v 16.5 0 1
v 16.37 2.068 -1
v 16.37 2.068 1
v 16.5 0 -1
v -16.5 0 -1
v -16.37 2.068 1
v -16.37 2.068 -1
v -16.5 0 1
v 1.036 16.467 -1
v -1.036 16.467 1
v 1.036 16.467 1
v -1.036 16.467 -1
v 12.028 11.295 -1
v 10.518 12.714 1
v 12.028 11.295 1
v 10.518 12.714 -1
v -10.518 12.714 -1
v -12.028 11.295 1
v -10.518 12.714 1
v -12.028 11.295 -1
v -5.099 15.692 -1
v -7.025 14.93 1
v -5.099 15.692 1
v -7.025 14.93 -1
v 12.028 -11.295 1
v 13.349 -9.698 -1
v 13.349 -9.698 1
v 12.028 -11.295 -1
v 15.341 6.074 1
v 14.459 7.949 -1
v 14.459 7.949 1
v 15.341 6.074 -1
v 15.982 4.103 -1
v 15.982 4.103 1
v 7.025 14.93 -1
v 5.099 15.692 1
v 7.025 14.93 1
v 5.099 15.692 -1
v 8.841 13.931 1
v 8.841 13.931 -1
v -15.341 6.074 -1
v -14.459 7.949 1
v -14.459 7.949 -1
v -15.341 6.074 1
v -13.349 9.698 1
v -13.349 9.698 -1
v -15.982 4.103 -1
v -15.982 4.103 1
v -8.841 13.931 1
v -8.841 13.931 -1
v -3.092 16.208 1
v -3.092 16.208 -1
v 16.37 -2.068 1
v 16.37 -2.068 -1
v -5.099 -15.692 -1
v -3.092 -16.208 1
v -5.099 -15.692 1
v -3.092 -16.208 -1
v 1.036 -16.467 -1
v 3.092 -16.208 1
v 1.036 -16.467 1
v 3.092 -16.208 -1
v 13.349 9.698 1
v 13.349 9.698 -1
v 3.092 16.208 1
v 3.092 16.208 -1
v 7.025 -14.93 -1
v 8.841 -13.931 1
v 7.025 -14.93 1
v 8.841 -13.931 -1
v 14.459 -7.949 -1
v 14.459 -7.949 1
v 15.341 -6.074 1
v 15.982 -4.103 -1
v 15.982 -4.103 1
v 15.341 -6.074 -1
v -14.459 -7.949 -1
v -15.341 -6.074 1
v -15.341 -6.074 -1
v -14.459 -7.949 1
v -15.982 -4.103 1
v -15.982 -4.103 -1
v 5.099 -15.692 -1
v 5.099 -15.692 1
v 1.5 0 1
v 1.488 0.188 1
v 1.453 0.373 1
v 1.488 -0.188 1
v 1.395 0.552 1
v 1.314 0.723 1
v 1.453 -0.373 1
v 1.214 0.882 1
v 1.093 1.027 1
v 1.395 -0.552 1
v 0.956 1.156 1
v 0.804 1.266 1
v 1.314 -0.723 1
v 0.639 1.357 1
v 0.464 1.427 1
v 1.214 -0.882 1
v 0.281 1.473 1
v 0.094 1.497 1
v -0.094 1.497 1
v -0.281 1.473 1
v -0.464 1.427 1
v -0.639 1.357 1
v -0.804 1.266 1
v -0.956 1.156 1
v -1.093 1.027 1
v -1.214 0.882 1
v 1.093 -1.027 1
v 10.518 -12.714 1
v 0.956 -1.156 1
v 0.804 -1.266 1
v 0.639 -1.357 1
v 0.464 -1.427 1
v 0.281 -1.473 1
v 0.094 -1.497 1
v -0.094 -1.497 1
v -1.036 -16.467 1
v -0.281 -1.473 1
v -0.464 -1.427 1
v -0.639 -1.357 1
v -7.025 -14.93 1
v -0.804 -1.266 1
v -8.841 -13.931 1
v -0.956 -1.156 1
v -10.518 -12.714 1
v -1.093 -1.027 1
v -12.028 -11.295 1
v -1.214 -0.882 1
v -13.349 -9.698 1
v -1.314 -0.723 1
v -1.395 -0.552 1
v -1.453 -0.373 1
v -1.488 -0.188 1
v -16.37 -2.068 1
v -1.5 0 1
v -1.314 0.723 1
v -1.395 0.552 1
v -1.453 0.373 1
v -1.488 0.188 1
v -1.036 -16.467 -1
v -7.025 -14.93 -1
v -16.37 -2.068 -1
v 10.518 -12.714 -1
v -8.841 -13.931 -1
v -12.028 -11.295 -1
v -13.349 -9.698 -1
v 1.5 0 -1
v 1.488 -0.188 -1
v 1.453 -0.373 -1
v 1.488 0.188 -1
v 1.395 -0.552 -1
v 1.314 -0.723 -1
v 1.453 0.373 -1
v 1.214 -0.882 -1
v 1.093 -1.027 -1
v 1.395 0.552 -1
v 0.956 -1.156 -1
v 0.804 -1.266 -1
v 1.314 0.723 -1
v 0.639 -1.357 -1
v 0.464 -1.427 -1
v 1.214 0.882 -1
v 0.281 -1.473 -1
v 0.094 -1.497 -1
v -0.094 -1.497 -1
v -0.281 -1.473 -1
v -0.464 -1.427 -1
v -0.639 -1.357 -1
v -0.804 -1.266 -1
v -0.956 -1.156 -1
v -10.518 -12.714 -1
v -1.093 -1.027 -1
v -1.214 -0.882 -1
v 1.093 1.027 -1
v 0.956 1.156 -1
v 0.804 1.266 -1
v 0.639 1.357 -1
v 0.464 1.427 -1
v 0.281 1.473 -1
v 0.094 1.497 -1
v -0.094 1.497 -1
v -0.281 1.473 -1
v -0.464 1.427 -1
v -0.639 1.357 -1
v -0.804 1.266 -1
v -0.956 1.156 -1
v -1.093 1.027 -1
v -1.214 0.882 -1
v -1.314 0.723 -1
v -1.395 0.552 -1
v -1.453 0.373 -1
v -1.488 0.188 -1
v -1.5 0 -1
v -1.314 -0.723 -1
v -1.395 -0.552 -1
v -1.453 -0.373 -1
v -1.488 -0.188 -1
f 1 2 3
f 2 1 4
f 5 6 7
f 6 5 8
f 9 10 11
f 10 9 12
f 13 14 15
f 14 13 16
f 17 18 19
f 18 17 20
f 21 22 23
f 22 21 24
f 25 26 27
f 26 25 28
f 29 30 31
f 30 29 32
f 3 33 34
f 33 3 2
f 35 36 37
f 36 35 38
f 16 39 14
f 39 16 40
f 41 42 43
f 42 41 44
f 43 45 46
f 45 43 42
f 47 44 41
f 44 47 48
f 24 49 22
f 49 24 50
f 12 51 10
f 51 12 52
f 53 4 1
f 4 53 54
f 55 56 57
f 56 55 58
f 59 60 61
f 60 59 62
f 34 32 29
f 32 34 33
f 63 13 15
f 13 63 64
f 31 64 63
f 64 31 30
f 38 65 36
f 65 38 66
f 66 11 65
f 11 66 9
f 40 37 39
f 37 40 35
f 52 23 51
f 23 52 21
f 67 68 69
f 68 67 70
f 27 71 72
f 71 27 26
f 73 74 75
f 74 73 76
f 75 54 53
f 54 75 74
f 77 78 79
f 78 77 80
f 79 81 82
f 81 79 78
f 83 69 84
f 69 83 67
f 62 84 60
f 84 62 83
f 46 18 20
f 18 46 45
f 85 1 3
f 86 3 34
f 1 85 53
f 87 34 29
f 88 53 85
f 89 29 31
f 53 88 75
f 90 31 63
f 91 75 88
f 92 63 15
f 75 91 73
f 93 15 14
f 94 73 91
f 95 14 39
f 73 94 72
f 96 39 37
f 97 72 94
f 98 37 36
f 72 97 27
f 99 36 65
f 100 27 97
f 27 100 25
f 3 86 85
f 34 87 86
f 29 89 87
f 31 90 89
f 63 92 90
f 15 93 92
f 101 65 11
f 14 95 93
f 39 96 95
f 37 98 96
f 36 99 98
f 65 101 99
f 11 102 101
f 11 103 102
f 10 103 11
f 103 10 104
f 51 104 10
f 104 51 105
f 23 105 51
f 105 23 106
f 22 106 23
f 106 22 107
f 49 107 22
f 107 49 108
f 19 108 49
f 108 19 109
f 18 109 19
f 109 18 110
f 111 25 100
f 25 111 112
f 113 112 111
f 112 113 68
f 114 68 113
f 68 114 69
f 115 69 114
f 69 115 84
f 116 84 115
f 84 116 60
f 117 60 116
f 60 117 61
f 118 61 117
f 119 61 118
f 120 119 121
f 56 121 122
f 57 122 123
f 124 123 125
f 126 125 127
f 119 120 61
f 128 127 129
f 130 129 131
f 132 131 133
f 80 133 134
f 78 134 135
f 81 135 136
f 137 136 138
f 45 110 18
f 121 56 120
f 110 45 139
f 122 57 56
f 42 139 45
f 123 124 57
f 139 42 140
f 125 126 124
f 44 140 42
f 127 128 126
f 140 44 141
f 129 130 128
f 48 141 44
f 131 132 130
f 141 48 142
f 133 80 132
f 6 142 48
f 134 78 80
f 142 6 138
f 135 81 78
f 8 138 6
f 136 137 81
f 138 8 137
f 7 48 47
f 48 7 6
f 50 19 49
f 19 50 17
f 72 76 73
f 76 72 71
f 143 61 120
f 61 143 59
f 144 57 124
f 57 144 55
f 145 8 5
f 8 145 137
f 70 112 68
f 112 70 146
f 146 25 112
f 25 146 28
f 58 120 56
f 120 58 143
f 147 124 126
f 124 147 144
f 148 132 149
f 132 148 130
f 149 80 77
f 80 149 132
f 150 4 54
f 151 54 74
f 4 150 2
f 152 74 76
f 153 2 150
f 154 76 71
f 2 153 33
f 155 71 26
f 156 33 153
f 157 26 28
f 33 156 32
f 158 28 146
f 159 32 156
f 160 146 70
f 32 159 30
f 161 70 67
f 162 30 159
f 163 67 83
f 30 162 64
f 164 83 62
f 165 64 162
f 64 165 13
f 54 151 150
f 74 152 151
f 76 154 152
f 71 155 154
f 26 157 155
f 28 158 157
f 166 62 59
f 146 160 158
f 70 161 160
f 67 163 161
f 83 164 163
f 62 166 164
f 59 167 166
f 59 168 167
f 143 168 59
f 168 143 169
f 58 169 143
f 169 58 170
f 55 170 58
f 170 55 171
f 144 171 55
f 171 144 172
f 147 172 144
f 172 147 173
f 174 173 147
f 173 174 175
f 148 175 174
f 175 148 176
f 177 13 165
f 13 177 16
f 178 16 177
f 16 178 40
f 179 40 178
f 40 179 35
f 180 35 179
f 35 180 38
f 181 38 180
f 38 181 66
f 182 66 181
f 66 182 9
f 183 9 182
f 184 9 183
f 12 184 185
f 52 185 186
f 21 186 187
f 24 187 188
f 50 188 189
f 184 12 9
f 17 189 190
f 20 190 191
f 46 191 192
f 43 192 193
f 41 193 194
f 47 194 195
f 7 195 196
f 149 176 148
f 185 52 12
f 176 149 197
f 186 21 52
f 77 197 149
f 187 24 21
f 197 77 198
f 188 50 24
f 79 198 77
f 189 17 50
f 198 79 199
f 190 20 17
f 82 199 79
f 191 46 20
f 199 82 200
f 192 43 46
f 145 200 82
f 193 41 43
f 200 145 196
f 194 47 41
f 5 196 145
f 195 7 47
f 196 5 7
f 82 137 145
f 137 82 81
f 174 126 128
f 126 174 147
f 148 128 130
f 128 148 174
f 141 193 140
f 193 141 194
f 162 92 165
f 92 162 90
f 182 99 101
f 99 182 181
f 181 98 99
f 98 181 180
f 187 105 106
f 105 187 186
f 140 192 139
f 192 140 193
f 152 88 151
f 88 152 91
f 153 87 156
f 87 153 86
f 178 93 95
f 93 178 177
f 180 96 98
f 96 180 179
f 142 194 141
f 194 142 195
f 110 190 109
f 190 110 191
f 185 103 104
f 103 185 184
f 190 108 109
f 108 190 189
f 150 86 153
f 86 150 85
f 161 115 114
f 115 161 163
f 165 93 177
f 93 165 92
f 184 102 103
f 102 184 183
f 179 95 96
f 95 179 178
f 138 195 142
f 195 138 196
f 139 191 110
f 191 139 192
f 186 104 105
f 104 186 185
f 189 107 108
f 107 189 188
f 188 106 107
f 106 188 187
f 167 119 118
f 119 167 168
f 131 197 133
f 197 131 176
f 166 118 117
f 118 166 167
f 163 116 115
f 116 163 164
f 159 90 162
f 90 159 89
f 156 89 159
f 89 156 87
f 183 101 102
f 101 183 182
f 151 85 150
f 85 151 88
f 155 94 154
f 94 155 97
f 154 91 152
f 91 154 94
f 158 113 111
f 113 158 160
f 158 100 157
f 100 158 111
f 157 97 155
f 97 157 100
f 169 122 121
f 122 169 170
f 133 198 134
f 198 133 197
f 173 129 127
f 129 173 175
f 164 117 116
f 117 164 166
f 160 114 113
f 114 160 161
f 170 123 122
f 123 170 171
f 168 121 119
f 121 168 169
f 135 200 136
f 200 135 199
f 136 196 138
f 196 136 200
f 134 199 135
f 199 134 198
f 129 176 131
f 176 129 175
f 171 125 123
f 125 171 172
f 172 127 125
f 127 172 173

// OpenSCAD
$fn = 50;


difference() {
	union() {
		translate(v = [0, 0, -1.0000000000]) {
			cylinder(h = 2, r = 16.5000000000);
		}
	}
	union() {
		translate(v = [0, 0, -100.0000000000]) {
			cylinder(h = 200, r = 1.5000000000);
		}
	}
}
